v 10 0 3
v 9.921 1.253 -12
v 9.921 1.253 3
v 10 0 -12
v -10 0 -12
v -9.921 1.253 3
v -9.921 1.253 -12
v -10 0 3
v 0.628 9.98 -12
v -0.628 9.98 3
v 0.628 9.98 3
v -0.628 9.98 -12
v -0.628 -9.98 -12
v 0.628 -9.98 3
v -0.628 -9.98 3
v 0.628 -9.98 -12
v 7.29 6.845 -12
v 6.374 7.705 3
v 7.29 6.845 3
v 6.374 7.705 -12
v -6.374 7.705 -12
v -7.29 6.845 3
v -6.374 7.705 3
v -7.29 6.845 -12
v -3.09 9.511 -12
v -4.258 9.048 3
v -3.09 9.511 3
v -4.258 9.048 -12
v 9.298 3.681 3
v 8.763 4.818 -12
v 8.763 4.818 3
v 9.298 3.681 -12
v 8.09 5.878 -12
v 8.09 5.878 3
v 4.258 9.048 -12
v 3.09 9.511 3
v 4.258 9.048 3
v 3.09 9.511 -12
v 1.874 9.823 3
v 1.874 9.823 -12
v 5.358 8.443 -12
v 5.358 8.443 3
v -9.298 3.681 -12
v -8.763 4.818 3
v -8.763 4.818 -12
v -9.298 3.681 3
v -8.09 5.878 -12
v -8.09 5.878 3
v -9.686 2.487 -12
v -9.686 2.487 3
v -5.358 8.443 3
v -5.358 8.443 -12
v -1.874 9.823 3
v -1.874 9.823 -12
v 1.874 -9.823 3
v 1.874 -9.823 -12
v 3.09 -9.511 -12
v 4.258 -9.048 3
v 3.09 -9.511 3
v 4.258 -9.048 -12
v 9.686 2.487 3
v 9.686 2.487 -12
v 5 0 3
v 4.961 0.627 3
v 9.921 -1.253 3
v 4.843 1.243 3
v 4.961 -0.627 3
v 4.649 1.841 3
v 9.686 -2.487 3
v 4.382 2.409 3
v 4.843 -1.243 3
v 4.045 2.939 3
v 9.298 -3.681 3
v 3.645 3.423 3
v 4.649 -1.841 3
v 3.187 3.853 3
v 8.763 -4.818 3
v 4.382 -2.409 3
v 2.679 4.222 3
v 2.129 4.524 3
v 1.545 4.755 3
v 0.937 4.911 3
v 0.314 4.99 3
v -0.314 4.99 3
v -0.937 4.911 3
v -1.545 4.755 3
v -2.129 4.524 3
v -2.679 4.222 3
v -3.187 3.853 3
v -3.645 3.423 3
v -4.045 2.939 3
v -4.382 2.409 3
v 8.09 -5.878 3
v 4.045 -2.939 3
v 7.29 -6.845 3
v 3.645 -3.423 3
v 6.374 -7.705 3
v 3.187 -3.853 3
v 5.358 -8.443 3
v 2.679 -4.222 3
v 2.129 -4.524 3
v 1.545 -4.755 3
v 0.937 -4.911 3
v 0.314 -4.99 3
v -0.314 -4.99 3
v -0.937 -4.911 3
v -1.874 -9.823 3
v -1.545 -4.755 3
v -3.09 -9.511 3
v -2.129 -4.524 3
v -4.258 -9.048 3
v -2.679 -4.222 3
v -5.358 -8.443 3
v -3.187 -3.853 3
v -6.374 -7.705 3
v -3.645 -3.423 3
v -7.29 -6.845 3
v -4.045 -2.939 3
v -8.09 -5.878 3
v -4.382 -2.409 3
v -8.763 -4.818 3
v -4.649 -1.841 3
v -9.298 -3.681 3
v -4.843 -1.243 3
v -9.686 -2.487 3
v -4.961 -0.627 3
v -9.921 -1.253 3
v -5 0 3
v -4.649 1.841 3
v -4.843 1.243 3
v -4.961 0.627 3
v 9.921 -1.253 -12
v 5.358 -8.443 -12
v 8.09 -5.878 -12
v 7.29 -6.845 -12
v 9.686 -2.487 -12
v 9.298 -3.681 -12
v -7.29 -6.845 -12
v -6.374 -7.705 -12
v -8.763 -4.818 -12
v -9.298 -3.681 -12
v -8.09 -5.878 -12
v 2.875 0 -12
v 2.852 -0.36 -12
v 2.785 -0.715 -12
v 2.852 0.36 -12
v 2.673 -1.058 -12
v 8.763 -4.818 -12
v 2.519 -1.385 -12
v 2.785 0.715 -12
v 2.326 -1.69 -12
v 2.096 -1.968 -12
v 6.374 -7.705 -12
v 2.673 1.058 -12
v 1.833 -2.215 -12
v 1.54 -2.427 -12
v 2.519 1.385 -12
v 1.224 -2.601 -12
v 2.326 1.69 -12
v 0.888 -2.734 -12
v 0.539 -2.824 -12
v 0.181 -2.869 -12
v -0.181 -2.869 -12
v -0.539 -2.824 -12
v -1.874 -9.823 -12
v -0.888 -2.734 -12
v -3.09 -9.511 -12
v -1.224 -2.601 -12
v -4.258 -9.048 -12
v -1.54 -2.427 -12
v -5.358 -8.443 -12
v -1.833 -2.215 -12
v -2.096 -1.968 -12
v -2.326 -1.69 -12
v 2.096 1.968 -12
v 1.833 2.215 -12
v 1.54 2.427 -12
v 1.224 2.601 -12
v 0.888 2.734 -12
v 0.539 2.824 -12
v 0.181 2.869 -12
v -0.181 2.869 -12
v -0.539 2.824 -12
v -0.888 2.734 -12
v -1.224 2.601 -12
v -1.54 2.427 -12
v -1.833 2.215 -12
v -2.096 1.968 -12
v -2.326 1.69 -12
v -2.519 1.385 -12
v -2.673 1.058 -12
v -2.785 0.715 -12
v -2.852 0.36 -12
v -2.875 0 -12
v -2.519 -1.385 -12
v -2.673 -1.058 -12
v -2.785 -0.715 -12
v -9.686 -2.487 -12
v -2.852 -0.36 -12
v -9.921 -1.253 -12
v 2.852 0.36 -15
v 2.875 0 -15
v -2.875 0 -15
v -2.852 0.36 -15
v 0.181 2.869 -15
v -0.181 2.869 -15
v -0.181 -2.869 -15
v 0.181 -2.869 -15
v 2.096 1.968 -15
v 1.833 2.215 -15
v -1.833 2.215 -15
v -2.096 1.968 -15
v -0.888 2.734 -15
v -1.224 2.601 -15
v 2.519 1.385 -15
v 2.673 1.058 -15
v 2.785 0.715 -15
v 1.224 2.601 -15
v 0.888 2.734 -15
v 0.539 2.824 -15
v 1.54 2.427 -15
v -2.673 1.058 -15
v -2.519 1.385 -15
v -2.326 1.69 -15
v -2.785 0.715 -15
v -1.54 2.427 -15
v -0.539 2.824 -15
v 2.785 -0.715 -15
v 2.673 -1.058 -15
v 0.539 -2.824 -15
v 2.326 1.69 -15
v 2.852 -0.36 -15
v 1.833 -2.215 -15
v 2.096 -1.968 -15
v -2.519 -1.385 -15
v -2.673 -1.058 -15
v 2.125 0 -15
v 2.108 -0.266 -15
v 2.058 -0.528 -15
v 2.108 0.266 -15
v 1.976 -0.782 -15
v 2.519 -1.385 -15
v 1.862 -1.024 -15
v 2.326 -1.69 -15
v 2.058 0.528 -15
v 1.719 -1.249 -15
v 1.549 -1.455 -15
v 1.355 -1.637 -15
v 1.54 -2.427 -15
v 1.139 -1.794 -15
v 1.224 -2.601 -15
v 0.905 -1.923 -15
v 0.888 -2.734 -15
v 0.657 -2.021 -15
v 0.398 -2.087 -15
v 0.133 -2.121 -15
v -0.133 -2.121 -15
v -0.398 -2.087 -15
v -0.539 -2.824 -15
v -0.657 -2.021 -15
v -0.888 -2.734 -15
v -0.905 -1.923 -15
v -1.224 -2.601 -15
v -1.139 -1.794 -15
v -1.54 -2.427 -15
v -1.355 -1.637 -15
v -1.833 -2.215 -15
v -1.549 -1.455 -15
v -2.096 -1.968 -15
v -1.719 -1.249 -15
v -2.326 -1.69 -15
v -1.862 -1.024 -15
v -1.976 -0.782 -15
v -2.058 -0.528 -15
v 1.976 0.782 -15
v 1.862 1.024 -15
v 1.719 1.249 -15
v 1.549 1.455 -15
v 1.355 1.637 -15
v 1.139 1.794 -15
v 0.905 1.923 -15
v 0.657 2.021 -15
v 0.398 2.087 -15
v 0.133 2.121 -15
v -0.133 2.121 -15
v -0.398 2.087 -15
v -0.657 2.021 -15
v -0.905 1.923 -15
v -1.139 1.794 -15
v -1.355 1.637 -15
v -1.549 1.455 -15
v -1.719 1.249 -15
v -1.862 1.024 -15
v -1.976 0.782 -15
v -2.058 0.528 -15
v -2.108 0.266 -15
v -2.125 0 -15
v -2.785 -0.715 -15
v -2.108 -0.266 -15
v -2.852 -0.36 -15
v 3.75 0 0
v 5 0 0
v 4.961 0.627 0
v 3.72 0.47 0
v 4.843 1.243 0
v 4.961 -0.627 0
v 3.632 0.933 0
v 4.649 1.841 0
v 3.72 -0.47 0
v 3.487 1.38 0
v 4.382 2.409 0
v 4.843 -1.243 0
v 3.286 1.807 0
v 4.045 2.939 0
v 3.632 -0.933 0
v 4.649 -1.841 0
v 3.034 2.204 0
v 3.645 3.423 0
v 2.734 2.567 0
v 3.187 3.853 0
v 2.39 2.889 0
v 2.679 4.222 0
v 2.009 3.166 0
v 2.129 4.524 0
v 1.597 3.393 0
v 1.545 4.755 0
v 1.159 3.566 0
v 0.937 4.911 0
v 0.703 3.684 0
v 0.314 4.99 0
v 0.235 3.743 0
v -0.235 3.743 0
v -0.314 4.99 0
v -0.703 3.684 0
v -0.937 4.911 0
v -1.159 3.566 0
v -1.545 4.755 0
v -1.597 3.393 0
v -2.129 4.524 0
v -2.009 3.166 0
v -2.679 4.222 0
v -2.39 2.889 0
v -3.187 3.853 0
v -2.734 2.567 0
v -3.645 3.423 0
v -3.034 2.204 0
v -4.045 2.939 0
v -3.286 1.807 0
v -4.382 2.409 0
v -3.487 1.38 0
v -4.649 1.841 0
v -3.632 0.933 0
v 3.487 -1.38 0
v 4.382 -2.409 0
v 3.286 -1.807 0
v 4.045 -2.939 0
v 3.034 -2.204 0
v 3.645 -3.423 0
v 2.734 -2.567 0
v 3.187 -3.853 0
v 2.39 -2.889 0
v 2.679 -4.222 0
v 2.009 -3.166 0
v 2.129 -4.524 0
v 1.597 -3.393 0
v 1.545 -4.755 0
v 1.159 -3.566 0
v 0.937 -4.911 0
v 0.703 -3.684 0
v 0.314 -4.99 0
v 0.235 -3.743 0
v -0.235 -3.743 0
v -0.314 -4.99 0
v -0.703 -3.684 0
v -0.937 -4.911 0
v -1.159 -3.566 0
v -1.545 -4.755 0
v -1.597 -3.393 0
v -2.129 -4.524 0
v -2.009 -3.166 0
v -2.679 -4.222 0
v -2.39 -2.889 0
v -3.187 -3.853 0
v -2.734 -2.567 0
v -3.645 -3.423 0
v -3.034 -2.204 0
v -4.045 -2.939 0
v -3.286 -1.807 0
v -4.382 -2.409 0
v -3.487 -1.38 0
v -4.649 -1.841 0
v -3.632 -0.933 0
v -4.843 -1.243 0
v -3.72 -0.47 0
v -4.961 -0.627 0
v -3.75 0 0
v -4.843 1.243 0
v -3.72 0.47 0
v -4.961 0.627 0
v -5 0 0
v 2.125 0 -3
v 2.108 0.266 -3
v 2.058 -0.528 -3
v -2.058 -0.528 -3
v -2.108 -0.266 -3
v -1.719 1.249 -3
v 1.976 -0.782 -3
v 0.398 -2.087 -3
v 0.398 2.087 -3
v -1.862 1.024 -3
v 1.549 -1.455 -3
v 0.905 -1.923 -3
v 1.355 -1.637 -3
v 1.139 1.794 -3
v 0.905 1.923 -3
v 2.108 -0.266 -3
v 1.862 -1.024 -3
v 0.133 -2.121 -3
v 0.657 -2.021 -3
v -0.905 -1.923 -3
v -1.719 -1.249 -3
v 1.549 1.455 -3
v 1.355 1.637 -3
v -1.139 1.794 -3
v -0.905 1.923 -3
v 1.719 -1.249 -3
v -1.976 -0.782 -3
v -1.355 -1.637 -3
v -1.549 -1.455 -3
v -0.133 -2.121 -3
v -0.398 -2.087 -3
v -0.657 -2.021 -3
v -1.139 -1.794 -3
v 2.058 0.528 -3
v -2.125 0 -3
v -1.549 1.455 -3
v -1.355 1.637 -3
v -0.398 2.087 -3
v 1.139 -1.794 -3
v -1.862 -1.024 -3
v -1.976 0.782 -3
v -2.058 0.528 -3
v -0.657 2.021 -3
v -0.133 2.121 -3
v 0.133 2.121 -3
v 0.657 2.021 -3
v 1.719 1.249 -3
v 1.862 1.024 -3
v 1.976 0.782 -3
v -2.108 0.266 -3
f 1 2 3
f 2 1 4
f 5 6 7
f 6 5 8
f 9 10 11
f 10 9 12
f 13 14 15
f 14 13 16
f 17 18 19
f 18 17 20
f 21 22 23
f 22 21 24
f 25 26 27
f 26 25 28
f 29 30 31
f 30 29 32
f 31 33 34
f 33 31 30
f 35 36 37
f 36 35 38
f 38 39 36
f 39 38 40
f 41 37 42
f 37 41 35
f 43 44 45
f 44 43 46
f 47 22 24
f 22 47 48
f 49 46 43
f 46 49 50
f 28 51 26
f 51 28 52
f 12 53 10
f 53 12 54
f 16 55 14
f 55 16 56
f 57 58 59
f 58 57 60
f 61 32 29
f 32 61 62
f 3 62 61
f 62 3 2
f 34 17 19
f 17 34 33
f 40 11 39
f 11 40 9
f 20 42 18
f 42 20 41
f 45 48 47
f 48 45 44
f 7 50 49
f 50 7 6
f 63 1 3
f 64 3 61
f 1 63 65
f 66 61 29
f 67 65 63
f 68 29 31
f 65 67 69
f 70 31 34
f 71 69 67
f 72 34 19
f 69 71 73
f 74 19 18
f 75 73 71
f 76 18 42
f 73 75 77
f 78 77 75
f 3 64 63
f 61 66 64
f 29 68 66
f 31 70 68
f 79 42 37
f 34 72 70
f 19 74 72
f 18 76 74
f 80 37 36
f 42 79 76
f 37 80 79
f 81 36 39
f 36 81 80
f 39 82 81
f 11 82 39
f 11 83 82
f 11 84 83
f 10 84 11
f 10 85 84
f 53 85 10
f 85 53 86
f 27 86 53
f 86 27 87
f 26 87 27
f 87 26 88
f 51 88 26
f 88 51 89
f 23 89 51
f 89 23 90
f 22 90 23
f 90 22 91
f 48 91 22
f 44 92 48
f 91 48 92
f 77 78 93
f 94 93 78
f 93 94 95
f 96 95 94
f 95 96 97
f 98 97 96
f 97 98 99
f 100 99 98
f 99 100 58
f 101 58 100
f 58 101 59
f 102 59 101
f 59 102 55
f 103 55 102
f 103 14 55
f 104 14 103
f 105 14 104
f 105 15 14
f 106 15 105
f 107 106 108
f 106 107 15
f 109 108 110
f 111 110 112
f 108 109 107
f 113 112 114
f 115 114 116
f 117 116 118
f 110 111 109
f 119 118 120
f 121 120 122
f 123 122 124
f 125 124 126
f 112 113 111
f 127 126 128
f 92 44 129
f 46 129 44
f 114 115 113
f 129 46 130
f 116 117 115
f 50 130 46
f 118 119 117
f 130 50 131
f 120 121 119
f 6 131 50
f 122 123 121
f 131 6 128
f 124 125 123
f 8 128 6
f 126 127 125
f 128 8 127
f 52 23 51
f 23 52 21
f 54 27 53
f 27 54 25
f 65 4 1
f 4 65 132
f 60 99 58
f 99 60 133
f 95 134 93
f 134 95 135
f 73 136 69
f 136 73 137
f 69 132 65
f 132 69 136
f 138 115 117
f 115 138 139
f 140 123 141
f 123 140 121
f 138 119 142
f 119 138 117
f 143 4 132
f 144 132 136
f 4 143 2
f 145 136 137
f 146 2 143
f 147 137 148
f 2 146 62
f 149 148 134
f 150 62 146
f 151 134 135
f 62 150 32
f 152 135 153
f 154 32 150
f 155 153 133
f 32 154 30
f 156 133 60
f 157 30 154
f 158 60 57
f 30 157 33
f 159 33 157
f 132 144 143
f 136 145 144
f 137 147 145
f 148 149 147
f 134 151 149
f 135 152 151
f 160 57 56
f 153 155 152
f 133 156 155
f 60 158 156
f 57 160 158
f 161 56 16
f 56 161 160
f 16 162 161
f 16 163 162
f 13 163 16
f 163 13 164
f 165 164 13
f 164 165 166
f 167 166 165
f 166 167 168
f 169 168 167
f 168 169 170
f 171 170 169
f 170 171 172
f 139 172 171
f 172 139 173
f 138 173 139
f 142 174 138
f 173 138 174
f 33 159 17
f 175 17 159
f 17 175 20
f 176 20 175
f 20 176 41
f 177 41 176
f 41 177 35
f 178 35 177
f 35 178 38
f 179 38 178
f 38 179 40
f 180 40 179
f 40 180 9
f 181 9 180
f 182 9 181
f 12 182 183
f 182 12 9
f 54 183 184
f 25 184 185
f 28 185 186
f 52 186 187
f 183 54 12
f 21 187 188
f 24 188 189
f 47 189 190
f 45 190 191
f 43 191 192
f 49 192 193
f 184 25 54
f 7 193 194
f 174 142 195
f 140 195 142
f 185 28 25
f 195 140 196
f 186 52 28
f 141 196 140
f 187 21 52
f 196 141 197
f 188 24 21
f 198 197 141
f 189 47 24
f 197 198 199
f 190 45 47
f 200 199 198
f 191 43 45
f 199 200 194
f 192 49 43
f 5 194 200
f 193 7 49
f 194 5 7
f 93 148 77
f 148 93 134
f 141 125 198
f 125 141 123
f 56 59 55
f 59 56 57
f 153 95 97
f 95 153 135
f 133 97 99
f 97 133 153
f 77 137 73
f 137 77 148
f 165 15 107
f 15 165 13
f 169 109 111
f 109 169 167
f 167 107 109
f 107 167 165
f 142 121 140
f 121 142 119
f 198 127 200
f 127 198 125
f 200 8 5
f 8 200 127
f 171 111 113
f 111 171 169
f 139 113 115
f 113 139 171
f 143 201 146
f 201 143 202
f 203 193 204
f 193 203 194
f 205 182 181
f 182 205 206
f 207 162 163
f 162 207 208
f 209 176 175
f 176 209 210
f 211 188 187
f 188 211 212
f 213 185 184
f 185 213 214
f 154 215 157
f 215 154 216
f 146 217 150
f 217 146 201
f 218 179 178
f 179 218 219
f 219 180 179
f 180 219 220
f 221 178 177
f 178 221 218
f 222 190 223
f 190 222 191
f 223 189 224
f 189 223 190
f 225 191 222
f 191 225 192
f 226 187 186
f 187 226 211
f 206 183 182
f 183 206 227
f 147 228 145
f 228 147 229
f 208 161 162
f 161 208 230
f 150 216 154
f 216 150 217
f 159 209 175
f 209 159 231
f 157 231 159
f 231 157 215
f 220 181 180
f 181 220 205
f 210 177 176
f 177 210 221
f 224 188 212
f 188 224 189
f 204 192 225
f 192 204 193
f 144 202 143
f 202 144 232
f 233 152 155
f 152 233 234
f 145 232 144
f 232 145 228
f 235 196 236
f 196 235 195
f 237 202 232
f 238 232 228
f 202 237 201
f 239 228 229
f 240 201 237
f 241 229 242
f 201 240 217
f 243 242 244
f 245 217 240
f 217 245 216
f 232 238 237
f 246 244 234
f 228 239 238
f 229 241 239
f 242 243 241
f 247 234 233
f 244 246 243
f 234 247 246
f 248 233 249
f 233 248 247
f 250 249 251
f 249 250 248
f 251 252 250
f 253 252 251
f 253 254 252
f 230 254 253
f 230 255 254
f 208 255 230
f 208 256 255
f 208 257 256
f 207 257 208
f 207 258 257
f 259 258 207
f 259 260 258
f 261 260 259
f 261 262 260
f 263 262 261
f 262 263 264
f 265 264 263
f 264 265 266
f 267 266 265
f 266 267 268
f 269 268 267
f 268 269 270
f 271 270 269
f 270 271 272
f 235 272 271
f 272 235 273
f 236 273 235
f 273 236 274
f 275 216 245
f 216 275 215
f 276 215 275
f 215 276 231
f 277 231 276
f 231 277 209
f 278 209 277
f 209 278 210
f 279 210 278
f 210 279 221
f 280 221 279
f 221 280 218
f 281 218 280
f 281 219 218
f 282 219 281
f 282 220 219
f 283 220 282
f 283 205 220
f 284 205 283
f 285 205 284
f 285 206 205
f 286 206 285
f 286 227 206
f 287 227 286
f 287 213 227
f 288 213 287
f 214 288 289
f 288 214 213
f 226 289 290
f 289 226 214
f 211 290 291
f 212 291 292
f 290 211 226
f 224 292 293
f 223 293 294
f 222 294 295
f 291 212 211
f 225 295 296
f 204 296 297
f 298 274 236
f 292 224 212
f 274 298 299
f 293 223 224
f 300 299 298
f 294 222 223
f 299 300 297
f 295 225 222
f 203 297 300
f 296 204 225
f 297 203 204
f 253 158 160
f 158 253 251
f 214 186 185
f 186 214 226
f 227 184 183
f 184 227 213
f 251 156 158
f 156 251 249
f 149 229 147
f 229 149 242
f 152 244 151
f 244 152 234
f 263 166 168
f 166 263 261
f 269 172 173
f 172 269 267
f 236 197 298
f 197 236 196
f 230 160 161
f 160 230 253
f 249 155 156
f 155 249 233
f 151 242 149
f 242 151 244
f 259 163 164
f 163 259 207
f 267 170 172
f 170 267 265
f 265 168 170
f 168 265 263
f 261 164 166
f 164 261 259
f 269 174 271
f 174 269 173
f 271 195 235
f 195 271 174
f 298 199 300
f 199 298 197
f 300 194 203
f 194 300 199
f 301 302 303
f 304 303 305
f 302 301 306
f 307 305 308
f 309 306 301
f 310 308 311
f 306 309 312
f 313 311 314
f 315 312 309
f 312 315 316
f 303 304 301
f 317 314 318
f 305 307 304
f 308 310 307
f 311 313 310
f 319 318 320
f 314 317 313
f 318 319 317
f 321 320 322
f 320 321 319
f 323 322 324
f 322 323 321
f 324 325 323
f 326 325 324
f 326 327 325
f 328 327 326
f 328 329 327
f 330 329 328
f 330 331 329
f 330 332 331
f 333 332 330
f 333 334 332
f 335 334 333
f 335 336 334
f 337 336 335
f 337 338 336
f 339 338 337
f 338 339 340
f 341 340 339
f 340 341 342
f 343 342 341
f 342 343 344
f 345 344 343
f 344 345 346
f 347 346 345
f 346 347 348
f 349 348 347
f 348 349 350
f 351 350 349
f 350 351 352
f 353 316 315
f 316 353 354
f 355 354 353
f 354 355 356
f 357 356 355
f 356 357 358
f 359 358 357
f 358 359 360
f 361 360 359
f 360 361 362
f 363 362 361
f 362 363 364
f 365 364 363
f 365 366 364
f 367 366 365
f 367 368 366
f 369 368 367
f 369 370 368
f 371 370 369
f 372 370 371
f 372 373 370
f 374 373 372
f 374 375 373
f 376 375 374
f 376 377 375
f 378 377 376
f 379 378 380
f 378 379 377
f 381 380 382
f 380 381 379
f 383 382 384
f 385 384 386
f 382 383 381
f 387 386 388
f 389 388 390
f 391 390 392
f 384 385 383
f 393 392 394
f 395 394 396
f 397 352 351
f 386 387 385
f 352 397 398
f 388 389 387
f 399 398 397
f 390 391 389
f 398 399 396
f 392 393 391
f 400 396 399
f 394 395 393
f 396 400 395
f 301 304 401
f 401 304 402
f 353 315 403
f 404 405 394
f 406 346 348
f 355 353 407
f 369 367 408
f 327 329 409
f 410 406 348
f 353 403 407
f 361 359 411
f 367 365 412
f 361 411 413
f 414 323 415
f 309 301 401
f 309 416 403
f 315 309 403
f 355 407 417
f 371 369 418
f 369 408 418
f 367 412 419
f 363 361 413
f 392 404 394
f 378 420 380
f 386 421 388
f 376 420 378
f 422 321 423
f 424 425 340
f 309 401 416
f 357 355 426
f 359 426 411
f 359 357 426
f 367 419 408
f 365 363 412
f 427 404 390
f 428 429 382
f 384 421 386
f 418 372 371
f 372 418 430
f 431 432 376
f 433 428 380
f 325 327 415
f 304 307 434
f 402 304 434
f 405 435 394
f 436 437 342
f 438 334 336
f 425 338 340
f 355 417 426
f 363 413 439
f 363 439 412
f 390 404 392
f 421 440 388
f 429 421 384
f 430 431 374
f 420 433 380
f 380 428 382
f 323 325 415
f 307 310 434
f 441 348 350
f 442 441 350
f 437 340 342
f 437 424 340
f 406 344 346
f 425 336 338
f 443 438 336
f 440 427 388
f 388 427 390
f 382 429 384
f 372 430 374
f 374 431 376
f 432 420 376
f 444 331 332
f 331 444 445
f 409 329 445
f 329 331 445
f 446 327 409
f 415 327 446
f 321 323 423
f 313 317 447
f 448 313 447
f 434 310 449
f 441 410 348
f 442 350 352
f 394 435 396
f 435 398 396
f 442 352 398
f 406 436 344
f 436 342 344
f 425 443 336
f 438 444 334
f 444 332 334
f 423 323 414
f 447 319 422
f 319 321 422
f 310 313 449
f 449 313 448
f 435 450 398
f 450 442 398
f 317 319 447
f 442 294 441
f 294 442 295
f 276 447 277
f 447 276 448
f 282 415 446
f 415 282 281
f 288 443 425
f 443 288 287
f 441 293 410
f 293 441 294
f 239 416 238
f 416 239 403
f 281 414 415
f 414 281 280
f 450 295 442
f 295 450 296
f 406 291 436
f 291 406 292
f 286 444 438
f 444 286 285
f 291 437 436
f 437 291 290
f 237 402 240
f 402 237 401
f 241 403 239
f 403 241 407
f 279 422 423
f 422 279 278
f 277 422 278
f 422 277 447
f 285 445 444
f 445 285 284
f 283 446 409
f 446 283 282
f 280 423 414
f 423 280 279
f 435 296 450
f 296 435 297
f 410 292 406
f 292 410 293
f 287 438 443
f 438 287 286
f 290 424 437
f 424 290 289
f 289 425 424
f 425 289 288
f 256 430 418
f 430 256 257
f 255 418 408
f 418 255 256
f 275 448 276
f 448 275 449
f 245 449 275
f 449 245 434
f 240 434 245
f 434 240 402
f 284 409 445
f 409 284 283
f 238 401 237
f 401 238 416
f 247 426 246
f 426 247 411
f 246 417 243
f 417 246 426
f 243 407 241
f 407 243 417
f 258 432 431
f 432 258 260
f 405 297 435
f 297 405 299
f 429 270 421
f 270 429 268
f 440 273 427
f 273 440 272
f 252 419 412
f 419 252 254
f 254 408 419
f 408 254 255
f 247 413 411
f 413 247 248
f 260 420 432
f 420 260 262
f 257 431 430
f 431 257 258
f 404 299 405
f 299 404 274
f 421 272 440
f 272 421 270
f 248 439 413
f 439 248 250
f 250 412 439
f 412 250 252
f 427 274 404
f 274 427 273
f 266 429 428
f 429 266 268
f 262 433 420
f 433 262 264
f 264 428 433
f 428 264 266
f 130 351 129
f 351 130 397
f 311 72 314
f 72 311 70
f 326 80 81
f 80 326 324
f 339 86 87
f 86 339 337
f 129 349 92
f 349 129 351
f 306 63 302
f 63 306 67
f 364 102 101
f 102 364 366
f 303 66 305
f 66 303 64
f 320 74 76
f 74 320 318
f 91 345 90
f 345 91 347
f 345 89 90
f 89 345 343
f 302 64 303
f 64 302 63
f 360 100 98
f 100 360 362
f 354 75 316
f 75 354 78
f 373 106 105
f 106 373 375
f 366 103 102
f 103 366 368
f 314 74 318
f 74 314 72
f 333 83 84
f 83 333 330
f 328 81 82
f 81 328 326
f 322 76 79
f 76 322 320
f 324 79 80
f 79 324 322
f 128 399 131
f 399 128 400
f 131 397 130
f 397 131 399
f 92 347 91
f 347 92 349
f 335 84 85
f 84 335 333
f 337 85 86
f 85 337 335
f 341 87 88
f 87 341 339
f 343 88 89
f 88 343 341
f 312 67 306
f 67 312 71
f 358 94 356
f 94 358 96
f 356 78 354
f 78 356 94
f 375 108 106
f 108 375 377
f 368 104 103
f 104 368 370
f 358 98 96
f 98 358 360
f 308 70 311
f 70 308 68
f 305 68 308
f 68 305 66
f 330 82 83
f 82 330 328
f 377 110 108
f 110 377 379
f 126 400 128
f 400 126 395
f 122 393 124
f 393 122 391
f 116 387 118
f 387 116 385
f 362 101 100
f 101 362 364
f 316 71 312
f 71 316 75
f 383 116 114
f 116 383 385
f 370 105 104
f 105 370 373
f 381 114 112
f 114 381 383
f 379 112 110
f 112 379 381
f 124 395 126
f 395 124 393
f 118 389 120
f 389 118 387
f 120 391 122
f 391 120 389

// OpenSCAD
$fn = 50;

difference() {
	union() {
		translate(v = [0, 0, -12.0]) {
			cylinder(h = 15, r = 10.0);
		}
		#translate(v = [0, 0, -15.0]) {
			cylinder(h = 15, r = 2.875);
		}
	}
	union() {
		translate(v = [0, 0, 0]) {
			rotate(a = [0, 0, 0]) {
				difference() {
					union() {
						translate(v = [0, 0, -15.0]) {
							cylinder(h = 15, r = 2.0);
						}
						translate(v = [0, 0, -3]) {
							cylinder(h = 3, r1 = 2.125, r2 = 3.75);
						}
						translate(v = [0, 0, -15.0]) {
							cylinder(h = 15, r = 2.125);
						}
						translate(v = [0, 0, -15.0]) {
							cylinder(h = 15, r = 2.0);
						}
					}
					union();
				}
			}
		}
		#cylinder(h = 3, r = 5.0);
	}
}
